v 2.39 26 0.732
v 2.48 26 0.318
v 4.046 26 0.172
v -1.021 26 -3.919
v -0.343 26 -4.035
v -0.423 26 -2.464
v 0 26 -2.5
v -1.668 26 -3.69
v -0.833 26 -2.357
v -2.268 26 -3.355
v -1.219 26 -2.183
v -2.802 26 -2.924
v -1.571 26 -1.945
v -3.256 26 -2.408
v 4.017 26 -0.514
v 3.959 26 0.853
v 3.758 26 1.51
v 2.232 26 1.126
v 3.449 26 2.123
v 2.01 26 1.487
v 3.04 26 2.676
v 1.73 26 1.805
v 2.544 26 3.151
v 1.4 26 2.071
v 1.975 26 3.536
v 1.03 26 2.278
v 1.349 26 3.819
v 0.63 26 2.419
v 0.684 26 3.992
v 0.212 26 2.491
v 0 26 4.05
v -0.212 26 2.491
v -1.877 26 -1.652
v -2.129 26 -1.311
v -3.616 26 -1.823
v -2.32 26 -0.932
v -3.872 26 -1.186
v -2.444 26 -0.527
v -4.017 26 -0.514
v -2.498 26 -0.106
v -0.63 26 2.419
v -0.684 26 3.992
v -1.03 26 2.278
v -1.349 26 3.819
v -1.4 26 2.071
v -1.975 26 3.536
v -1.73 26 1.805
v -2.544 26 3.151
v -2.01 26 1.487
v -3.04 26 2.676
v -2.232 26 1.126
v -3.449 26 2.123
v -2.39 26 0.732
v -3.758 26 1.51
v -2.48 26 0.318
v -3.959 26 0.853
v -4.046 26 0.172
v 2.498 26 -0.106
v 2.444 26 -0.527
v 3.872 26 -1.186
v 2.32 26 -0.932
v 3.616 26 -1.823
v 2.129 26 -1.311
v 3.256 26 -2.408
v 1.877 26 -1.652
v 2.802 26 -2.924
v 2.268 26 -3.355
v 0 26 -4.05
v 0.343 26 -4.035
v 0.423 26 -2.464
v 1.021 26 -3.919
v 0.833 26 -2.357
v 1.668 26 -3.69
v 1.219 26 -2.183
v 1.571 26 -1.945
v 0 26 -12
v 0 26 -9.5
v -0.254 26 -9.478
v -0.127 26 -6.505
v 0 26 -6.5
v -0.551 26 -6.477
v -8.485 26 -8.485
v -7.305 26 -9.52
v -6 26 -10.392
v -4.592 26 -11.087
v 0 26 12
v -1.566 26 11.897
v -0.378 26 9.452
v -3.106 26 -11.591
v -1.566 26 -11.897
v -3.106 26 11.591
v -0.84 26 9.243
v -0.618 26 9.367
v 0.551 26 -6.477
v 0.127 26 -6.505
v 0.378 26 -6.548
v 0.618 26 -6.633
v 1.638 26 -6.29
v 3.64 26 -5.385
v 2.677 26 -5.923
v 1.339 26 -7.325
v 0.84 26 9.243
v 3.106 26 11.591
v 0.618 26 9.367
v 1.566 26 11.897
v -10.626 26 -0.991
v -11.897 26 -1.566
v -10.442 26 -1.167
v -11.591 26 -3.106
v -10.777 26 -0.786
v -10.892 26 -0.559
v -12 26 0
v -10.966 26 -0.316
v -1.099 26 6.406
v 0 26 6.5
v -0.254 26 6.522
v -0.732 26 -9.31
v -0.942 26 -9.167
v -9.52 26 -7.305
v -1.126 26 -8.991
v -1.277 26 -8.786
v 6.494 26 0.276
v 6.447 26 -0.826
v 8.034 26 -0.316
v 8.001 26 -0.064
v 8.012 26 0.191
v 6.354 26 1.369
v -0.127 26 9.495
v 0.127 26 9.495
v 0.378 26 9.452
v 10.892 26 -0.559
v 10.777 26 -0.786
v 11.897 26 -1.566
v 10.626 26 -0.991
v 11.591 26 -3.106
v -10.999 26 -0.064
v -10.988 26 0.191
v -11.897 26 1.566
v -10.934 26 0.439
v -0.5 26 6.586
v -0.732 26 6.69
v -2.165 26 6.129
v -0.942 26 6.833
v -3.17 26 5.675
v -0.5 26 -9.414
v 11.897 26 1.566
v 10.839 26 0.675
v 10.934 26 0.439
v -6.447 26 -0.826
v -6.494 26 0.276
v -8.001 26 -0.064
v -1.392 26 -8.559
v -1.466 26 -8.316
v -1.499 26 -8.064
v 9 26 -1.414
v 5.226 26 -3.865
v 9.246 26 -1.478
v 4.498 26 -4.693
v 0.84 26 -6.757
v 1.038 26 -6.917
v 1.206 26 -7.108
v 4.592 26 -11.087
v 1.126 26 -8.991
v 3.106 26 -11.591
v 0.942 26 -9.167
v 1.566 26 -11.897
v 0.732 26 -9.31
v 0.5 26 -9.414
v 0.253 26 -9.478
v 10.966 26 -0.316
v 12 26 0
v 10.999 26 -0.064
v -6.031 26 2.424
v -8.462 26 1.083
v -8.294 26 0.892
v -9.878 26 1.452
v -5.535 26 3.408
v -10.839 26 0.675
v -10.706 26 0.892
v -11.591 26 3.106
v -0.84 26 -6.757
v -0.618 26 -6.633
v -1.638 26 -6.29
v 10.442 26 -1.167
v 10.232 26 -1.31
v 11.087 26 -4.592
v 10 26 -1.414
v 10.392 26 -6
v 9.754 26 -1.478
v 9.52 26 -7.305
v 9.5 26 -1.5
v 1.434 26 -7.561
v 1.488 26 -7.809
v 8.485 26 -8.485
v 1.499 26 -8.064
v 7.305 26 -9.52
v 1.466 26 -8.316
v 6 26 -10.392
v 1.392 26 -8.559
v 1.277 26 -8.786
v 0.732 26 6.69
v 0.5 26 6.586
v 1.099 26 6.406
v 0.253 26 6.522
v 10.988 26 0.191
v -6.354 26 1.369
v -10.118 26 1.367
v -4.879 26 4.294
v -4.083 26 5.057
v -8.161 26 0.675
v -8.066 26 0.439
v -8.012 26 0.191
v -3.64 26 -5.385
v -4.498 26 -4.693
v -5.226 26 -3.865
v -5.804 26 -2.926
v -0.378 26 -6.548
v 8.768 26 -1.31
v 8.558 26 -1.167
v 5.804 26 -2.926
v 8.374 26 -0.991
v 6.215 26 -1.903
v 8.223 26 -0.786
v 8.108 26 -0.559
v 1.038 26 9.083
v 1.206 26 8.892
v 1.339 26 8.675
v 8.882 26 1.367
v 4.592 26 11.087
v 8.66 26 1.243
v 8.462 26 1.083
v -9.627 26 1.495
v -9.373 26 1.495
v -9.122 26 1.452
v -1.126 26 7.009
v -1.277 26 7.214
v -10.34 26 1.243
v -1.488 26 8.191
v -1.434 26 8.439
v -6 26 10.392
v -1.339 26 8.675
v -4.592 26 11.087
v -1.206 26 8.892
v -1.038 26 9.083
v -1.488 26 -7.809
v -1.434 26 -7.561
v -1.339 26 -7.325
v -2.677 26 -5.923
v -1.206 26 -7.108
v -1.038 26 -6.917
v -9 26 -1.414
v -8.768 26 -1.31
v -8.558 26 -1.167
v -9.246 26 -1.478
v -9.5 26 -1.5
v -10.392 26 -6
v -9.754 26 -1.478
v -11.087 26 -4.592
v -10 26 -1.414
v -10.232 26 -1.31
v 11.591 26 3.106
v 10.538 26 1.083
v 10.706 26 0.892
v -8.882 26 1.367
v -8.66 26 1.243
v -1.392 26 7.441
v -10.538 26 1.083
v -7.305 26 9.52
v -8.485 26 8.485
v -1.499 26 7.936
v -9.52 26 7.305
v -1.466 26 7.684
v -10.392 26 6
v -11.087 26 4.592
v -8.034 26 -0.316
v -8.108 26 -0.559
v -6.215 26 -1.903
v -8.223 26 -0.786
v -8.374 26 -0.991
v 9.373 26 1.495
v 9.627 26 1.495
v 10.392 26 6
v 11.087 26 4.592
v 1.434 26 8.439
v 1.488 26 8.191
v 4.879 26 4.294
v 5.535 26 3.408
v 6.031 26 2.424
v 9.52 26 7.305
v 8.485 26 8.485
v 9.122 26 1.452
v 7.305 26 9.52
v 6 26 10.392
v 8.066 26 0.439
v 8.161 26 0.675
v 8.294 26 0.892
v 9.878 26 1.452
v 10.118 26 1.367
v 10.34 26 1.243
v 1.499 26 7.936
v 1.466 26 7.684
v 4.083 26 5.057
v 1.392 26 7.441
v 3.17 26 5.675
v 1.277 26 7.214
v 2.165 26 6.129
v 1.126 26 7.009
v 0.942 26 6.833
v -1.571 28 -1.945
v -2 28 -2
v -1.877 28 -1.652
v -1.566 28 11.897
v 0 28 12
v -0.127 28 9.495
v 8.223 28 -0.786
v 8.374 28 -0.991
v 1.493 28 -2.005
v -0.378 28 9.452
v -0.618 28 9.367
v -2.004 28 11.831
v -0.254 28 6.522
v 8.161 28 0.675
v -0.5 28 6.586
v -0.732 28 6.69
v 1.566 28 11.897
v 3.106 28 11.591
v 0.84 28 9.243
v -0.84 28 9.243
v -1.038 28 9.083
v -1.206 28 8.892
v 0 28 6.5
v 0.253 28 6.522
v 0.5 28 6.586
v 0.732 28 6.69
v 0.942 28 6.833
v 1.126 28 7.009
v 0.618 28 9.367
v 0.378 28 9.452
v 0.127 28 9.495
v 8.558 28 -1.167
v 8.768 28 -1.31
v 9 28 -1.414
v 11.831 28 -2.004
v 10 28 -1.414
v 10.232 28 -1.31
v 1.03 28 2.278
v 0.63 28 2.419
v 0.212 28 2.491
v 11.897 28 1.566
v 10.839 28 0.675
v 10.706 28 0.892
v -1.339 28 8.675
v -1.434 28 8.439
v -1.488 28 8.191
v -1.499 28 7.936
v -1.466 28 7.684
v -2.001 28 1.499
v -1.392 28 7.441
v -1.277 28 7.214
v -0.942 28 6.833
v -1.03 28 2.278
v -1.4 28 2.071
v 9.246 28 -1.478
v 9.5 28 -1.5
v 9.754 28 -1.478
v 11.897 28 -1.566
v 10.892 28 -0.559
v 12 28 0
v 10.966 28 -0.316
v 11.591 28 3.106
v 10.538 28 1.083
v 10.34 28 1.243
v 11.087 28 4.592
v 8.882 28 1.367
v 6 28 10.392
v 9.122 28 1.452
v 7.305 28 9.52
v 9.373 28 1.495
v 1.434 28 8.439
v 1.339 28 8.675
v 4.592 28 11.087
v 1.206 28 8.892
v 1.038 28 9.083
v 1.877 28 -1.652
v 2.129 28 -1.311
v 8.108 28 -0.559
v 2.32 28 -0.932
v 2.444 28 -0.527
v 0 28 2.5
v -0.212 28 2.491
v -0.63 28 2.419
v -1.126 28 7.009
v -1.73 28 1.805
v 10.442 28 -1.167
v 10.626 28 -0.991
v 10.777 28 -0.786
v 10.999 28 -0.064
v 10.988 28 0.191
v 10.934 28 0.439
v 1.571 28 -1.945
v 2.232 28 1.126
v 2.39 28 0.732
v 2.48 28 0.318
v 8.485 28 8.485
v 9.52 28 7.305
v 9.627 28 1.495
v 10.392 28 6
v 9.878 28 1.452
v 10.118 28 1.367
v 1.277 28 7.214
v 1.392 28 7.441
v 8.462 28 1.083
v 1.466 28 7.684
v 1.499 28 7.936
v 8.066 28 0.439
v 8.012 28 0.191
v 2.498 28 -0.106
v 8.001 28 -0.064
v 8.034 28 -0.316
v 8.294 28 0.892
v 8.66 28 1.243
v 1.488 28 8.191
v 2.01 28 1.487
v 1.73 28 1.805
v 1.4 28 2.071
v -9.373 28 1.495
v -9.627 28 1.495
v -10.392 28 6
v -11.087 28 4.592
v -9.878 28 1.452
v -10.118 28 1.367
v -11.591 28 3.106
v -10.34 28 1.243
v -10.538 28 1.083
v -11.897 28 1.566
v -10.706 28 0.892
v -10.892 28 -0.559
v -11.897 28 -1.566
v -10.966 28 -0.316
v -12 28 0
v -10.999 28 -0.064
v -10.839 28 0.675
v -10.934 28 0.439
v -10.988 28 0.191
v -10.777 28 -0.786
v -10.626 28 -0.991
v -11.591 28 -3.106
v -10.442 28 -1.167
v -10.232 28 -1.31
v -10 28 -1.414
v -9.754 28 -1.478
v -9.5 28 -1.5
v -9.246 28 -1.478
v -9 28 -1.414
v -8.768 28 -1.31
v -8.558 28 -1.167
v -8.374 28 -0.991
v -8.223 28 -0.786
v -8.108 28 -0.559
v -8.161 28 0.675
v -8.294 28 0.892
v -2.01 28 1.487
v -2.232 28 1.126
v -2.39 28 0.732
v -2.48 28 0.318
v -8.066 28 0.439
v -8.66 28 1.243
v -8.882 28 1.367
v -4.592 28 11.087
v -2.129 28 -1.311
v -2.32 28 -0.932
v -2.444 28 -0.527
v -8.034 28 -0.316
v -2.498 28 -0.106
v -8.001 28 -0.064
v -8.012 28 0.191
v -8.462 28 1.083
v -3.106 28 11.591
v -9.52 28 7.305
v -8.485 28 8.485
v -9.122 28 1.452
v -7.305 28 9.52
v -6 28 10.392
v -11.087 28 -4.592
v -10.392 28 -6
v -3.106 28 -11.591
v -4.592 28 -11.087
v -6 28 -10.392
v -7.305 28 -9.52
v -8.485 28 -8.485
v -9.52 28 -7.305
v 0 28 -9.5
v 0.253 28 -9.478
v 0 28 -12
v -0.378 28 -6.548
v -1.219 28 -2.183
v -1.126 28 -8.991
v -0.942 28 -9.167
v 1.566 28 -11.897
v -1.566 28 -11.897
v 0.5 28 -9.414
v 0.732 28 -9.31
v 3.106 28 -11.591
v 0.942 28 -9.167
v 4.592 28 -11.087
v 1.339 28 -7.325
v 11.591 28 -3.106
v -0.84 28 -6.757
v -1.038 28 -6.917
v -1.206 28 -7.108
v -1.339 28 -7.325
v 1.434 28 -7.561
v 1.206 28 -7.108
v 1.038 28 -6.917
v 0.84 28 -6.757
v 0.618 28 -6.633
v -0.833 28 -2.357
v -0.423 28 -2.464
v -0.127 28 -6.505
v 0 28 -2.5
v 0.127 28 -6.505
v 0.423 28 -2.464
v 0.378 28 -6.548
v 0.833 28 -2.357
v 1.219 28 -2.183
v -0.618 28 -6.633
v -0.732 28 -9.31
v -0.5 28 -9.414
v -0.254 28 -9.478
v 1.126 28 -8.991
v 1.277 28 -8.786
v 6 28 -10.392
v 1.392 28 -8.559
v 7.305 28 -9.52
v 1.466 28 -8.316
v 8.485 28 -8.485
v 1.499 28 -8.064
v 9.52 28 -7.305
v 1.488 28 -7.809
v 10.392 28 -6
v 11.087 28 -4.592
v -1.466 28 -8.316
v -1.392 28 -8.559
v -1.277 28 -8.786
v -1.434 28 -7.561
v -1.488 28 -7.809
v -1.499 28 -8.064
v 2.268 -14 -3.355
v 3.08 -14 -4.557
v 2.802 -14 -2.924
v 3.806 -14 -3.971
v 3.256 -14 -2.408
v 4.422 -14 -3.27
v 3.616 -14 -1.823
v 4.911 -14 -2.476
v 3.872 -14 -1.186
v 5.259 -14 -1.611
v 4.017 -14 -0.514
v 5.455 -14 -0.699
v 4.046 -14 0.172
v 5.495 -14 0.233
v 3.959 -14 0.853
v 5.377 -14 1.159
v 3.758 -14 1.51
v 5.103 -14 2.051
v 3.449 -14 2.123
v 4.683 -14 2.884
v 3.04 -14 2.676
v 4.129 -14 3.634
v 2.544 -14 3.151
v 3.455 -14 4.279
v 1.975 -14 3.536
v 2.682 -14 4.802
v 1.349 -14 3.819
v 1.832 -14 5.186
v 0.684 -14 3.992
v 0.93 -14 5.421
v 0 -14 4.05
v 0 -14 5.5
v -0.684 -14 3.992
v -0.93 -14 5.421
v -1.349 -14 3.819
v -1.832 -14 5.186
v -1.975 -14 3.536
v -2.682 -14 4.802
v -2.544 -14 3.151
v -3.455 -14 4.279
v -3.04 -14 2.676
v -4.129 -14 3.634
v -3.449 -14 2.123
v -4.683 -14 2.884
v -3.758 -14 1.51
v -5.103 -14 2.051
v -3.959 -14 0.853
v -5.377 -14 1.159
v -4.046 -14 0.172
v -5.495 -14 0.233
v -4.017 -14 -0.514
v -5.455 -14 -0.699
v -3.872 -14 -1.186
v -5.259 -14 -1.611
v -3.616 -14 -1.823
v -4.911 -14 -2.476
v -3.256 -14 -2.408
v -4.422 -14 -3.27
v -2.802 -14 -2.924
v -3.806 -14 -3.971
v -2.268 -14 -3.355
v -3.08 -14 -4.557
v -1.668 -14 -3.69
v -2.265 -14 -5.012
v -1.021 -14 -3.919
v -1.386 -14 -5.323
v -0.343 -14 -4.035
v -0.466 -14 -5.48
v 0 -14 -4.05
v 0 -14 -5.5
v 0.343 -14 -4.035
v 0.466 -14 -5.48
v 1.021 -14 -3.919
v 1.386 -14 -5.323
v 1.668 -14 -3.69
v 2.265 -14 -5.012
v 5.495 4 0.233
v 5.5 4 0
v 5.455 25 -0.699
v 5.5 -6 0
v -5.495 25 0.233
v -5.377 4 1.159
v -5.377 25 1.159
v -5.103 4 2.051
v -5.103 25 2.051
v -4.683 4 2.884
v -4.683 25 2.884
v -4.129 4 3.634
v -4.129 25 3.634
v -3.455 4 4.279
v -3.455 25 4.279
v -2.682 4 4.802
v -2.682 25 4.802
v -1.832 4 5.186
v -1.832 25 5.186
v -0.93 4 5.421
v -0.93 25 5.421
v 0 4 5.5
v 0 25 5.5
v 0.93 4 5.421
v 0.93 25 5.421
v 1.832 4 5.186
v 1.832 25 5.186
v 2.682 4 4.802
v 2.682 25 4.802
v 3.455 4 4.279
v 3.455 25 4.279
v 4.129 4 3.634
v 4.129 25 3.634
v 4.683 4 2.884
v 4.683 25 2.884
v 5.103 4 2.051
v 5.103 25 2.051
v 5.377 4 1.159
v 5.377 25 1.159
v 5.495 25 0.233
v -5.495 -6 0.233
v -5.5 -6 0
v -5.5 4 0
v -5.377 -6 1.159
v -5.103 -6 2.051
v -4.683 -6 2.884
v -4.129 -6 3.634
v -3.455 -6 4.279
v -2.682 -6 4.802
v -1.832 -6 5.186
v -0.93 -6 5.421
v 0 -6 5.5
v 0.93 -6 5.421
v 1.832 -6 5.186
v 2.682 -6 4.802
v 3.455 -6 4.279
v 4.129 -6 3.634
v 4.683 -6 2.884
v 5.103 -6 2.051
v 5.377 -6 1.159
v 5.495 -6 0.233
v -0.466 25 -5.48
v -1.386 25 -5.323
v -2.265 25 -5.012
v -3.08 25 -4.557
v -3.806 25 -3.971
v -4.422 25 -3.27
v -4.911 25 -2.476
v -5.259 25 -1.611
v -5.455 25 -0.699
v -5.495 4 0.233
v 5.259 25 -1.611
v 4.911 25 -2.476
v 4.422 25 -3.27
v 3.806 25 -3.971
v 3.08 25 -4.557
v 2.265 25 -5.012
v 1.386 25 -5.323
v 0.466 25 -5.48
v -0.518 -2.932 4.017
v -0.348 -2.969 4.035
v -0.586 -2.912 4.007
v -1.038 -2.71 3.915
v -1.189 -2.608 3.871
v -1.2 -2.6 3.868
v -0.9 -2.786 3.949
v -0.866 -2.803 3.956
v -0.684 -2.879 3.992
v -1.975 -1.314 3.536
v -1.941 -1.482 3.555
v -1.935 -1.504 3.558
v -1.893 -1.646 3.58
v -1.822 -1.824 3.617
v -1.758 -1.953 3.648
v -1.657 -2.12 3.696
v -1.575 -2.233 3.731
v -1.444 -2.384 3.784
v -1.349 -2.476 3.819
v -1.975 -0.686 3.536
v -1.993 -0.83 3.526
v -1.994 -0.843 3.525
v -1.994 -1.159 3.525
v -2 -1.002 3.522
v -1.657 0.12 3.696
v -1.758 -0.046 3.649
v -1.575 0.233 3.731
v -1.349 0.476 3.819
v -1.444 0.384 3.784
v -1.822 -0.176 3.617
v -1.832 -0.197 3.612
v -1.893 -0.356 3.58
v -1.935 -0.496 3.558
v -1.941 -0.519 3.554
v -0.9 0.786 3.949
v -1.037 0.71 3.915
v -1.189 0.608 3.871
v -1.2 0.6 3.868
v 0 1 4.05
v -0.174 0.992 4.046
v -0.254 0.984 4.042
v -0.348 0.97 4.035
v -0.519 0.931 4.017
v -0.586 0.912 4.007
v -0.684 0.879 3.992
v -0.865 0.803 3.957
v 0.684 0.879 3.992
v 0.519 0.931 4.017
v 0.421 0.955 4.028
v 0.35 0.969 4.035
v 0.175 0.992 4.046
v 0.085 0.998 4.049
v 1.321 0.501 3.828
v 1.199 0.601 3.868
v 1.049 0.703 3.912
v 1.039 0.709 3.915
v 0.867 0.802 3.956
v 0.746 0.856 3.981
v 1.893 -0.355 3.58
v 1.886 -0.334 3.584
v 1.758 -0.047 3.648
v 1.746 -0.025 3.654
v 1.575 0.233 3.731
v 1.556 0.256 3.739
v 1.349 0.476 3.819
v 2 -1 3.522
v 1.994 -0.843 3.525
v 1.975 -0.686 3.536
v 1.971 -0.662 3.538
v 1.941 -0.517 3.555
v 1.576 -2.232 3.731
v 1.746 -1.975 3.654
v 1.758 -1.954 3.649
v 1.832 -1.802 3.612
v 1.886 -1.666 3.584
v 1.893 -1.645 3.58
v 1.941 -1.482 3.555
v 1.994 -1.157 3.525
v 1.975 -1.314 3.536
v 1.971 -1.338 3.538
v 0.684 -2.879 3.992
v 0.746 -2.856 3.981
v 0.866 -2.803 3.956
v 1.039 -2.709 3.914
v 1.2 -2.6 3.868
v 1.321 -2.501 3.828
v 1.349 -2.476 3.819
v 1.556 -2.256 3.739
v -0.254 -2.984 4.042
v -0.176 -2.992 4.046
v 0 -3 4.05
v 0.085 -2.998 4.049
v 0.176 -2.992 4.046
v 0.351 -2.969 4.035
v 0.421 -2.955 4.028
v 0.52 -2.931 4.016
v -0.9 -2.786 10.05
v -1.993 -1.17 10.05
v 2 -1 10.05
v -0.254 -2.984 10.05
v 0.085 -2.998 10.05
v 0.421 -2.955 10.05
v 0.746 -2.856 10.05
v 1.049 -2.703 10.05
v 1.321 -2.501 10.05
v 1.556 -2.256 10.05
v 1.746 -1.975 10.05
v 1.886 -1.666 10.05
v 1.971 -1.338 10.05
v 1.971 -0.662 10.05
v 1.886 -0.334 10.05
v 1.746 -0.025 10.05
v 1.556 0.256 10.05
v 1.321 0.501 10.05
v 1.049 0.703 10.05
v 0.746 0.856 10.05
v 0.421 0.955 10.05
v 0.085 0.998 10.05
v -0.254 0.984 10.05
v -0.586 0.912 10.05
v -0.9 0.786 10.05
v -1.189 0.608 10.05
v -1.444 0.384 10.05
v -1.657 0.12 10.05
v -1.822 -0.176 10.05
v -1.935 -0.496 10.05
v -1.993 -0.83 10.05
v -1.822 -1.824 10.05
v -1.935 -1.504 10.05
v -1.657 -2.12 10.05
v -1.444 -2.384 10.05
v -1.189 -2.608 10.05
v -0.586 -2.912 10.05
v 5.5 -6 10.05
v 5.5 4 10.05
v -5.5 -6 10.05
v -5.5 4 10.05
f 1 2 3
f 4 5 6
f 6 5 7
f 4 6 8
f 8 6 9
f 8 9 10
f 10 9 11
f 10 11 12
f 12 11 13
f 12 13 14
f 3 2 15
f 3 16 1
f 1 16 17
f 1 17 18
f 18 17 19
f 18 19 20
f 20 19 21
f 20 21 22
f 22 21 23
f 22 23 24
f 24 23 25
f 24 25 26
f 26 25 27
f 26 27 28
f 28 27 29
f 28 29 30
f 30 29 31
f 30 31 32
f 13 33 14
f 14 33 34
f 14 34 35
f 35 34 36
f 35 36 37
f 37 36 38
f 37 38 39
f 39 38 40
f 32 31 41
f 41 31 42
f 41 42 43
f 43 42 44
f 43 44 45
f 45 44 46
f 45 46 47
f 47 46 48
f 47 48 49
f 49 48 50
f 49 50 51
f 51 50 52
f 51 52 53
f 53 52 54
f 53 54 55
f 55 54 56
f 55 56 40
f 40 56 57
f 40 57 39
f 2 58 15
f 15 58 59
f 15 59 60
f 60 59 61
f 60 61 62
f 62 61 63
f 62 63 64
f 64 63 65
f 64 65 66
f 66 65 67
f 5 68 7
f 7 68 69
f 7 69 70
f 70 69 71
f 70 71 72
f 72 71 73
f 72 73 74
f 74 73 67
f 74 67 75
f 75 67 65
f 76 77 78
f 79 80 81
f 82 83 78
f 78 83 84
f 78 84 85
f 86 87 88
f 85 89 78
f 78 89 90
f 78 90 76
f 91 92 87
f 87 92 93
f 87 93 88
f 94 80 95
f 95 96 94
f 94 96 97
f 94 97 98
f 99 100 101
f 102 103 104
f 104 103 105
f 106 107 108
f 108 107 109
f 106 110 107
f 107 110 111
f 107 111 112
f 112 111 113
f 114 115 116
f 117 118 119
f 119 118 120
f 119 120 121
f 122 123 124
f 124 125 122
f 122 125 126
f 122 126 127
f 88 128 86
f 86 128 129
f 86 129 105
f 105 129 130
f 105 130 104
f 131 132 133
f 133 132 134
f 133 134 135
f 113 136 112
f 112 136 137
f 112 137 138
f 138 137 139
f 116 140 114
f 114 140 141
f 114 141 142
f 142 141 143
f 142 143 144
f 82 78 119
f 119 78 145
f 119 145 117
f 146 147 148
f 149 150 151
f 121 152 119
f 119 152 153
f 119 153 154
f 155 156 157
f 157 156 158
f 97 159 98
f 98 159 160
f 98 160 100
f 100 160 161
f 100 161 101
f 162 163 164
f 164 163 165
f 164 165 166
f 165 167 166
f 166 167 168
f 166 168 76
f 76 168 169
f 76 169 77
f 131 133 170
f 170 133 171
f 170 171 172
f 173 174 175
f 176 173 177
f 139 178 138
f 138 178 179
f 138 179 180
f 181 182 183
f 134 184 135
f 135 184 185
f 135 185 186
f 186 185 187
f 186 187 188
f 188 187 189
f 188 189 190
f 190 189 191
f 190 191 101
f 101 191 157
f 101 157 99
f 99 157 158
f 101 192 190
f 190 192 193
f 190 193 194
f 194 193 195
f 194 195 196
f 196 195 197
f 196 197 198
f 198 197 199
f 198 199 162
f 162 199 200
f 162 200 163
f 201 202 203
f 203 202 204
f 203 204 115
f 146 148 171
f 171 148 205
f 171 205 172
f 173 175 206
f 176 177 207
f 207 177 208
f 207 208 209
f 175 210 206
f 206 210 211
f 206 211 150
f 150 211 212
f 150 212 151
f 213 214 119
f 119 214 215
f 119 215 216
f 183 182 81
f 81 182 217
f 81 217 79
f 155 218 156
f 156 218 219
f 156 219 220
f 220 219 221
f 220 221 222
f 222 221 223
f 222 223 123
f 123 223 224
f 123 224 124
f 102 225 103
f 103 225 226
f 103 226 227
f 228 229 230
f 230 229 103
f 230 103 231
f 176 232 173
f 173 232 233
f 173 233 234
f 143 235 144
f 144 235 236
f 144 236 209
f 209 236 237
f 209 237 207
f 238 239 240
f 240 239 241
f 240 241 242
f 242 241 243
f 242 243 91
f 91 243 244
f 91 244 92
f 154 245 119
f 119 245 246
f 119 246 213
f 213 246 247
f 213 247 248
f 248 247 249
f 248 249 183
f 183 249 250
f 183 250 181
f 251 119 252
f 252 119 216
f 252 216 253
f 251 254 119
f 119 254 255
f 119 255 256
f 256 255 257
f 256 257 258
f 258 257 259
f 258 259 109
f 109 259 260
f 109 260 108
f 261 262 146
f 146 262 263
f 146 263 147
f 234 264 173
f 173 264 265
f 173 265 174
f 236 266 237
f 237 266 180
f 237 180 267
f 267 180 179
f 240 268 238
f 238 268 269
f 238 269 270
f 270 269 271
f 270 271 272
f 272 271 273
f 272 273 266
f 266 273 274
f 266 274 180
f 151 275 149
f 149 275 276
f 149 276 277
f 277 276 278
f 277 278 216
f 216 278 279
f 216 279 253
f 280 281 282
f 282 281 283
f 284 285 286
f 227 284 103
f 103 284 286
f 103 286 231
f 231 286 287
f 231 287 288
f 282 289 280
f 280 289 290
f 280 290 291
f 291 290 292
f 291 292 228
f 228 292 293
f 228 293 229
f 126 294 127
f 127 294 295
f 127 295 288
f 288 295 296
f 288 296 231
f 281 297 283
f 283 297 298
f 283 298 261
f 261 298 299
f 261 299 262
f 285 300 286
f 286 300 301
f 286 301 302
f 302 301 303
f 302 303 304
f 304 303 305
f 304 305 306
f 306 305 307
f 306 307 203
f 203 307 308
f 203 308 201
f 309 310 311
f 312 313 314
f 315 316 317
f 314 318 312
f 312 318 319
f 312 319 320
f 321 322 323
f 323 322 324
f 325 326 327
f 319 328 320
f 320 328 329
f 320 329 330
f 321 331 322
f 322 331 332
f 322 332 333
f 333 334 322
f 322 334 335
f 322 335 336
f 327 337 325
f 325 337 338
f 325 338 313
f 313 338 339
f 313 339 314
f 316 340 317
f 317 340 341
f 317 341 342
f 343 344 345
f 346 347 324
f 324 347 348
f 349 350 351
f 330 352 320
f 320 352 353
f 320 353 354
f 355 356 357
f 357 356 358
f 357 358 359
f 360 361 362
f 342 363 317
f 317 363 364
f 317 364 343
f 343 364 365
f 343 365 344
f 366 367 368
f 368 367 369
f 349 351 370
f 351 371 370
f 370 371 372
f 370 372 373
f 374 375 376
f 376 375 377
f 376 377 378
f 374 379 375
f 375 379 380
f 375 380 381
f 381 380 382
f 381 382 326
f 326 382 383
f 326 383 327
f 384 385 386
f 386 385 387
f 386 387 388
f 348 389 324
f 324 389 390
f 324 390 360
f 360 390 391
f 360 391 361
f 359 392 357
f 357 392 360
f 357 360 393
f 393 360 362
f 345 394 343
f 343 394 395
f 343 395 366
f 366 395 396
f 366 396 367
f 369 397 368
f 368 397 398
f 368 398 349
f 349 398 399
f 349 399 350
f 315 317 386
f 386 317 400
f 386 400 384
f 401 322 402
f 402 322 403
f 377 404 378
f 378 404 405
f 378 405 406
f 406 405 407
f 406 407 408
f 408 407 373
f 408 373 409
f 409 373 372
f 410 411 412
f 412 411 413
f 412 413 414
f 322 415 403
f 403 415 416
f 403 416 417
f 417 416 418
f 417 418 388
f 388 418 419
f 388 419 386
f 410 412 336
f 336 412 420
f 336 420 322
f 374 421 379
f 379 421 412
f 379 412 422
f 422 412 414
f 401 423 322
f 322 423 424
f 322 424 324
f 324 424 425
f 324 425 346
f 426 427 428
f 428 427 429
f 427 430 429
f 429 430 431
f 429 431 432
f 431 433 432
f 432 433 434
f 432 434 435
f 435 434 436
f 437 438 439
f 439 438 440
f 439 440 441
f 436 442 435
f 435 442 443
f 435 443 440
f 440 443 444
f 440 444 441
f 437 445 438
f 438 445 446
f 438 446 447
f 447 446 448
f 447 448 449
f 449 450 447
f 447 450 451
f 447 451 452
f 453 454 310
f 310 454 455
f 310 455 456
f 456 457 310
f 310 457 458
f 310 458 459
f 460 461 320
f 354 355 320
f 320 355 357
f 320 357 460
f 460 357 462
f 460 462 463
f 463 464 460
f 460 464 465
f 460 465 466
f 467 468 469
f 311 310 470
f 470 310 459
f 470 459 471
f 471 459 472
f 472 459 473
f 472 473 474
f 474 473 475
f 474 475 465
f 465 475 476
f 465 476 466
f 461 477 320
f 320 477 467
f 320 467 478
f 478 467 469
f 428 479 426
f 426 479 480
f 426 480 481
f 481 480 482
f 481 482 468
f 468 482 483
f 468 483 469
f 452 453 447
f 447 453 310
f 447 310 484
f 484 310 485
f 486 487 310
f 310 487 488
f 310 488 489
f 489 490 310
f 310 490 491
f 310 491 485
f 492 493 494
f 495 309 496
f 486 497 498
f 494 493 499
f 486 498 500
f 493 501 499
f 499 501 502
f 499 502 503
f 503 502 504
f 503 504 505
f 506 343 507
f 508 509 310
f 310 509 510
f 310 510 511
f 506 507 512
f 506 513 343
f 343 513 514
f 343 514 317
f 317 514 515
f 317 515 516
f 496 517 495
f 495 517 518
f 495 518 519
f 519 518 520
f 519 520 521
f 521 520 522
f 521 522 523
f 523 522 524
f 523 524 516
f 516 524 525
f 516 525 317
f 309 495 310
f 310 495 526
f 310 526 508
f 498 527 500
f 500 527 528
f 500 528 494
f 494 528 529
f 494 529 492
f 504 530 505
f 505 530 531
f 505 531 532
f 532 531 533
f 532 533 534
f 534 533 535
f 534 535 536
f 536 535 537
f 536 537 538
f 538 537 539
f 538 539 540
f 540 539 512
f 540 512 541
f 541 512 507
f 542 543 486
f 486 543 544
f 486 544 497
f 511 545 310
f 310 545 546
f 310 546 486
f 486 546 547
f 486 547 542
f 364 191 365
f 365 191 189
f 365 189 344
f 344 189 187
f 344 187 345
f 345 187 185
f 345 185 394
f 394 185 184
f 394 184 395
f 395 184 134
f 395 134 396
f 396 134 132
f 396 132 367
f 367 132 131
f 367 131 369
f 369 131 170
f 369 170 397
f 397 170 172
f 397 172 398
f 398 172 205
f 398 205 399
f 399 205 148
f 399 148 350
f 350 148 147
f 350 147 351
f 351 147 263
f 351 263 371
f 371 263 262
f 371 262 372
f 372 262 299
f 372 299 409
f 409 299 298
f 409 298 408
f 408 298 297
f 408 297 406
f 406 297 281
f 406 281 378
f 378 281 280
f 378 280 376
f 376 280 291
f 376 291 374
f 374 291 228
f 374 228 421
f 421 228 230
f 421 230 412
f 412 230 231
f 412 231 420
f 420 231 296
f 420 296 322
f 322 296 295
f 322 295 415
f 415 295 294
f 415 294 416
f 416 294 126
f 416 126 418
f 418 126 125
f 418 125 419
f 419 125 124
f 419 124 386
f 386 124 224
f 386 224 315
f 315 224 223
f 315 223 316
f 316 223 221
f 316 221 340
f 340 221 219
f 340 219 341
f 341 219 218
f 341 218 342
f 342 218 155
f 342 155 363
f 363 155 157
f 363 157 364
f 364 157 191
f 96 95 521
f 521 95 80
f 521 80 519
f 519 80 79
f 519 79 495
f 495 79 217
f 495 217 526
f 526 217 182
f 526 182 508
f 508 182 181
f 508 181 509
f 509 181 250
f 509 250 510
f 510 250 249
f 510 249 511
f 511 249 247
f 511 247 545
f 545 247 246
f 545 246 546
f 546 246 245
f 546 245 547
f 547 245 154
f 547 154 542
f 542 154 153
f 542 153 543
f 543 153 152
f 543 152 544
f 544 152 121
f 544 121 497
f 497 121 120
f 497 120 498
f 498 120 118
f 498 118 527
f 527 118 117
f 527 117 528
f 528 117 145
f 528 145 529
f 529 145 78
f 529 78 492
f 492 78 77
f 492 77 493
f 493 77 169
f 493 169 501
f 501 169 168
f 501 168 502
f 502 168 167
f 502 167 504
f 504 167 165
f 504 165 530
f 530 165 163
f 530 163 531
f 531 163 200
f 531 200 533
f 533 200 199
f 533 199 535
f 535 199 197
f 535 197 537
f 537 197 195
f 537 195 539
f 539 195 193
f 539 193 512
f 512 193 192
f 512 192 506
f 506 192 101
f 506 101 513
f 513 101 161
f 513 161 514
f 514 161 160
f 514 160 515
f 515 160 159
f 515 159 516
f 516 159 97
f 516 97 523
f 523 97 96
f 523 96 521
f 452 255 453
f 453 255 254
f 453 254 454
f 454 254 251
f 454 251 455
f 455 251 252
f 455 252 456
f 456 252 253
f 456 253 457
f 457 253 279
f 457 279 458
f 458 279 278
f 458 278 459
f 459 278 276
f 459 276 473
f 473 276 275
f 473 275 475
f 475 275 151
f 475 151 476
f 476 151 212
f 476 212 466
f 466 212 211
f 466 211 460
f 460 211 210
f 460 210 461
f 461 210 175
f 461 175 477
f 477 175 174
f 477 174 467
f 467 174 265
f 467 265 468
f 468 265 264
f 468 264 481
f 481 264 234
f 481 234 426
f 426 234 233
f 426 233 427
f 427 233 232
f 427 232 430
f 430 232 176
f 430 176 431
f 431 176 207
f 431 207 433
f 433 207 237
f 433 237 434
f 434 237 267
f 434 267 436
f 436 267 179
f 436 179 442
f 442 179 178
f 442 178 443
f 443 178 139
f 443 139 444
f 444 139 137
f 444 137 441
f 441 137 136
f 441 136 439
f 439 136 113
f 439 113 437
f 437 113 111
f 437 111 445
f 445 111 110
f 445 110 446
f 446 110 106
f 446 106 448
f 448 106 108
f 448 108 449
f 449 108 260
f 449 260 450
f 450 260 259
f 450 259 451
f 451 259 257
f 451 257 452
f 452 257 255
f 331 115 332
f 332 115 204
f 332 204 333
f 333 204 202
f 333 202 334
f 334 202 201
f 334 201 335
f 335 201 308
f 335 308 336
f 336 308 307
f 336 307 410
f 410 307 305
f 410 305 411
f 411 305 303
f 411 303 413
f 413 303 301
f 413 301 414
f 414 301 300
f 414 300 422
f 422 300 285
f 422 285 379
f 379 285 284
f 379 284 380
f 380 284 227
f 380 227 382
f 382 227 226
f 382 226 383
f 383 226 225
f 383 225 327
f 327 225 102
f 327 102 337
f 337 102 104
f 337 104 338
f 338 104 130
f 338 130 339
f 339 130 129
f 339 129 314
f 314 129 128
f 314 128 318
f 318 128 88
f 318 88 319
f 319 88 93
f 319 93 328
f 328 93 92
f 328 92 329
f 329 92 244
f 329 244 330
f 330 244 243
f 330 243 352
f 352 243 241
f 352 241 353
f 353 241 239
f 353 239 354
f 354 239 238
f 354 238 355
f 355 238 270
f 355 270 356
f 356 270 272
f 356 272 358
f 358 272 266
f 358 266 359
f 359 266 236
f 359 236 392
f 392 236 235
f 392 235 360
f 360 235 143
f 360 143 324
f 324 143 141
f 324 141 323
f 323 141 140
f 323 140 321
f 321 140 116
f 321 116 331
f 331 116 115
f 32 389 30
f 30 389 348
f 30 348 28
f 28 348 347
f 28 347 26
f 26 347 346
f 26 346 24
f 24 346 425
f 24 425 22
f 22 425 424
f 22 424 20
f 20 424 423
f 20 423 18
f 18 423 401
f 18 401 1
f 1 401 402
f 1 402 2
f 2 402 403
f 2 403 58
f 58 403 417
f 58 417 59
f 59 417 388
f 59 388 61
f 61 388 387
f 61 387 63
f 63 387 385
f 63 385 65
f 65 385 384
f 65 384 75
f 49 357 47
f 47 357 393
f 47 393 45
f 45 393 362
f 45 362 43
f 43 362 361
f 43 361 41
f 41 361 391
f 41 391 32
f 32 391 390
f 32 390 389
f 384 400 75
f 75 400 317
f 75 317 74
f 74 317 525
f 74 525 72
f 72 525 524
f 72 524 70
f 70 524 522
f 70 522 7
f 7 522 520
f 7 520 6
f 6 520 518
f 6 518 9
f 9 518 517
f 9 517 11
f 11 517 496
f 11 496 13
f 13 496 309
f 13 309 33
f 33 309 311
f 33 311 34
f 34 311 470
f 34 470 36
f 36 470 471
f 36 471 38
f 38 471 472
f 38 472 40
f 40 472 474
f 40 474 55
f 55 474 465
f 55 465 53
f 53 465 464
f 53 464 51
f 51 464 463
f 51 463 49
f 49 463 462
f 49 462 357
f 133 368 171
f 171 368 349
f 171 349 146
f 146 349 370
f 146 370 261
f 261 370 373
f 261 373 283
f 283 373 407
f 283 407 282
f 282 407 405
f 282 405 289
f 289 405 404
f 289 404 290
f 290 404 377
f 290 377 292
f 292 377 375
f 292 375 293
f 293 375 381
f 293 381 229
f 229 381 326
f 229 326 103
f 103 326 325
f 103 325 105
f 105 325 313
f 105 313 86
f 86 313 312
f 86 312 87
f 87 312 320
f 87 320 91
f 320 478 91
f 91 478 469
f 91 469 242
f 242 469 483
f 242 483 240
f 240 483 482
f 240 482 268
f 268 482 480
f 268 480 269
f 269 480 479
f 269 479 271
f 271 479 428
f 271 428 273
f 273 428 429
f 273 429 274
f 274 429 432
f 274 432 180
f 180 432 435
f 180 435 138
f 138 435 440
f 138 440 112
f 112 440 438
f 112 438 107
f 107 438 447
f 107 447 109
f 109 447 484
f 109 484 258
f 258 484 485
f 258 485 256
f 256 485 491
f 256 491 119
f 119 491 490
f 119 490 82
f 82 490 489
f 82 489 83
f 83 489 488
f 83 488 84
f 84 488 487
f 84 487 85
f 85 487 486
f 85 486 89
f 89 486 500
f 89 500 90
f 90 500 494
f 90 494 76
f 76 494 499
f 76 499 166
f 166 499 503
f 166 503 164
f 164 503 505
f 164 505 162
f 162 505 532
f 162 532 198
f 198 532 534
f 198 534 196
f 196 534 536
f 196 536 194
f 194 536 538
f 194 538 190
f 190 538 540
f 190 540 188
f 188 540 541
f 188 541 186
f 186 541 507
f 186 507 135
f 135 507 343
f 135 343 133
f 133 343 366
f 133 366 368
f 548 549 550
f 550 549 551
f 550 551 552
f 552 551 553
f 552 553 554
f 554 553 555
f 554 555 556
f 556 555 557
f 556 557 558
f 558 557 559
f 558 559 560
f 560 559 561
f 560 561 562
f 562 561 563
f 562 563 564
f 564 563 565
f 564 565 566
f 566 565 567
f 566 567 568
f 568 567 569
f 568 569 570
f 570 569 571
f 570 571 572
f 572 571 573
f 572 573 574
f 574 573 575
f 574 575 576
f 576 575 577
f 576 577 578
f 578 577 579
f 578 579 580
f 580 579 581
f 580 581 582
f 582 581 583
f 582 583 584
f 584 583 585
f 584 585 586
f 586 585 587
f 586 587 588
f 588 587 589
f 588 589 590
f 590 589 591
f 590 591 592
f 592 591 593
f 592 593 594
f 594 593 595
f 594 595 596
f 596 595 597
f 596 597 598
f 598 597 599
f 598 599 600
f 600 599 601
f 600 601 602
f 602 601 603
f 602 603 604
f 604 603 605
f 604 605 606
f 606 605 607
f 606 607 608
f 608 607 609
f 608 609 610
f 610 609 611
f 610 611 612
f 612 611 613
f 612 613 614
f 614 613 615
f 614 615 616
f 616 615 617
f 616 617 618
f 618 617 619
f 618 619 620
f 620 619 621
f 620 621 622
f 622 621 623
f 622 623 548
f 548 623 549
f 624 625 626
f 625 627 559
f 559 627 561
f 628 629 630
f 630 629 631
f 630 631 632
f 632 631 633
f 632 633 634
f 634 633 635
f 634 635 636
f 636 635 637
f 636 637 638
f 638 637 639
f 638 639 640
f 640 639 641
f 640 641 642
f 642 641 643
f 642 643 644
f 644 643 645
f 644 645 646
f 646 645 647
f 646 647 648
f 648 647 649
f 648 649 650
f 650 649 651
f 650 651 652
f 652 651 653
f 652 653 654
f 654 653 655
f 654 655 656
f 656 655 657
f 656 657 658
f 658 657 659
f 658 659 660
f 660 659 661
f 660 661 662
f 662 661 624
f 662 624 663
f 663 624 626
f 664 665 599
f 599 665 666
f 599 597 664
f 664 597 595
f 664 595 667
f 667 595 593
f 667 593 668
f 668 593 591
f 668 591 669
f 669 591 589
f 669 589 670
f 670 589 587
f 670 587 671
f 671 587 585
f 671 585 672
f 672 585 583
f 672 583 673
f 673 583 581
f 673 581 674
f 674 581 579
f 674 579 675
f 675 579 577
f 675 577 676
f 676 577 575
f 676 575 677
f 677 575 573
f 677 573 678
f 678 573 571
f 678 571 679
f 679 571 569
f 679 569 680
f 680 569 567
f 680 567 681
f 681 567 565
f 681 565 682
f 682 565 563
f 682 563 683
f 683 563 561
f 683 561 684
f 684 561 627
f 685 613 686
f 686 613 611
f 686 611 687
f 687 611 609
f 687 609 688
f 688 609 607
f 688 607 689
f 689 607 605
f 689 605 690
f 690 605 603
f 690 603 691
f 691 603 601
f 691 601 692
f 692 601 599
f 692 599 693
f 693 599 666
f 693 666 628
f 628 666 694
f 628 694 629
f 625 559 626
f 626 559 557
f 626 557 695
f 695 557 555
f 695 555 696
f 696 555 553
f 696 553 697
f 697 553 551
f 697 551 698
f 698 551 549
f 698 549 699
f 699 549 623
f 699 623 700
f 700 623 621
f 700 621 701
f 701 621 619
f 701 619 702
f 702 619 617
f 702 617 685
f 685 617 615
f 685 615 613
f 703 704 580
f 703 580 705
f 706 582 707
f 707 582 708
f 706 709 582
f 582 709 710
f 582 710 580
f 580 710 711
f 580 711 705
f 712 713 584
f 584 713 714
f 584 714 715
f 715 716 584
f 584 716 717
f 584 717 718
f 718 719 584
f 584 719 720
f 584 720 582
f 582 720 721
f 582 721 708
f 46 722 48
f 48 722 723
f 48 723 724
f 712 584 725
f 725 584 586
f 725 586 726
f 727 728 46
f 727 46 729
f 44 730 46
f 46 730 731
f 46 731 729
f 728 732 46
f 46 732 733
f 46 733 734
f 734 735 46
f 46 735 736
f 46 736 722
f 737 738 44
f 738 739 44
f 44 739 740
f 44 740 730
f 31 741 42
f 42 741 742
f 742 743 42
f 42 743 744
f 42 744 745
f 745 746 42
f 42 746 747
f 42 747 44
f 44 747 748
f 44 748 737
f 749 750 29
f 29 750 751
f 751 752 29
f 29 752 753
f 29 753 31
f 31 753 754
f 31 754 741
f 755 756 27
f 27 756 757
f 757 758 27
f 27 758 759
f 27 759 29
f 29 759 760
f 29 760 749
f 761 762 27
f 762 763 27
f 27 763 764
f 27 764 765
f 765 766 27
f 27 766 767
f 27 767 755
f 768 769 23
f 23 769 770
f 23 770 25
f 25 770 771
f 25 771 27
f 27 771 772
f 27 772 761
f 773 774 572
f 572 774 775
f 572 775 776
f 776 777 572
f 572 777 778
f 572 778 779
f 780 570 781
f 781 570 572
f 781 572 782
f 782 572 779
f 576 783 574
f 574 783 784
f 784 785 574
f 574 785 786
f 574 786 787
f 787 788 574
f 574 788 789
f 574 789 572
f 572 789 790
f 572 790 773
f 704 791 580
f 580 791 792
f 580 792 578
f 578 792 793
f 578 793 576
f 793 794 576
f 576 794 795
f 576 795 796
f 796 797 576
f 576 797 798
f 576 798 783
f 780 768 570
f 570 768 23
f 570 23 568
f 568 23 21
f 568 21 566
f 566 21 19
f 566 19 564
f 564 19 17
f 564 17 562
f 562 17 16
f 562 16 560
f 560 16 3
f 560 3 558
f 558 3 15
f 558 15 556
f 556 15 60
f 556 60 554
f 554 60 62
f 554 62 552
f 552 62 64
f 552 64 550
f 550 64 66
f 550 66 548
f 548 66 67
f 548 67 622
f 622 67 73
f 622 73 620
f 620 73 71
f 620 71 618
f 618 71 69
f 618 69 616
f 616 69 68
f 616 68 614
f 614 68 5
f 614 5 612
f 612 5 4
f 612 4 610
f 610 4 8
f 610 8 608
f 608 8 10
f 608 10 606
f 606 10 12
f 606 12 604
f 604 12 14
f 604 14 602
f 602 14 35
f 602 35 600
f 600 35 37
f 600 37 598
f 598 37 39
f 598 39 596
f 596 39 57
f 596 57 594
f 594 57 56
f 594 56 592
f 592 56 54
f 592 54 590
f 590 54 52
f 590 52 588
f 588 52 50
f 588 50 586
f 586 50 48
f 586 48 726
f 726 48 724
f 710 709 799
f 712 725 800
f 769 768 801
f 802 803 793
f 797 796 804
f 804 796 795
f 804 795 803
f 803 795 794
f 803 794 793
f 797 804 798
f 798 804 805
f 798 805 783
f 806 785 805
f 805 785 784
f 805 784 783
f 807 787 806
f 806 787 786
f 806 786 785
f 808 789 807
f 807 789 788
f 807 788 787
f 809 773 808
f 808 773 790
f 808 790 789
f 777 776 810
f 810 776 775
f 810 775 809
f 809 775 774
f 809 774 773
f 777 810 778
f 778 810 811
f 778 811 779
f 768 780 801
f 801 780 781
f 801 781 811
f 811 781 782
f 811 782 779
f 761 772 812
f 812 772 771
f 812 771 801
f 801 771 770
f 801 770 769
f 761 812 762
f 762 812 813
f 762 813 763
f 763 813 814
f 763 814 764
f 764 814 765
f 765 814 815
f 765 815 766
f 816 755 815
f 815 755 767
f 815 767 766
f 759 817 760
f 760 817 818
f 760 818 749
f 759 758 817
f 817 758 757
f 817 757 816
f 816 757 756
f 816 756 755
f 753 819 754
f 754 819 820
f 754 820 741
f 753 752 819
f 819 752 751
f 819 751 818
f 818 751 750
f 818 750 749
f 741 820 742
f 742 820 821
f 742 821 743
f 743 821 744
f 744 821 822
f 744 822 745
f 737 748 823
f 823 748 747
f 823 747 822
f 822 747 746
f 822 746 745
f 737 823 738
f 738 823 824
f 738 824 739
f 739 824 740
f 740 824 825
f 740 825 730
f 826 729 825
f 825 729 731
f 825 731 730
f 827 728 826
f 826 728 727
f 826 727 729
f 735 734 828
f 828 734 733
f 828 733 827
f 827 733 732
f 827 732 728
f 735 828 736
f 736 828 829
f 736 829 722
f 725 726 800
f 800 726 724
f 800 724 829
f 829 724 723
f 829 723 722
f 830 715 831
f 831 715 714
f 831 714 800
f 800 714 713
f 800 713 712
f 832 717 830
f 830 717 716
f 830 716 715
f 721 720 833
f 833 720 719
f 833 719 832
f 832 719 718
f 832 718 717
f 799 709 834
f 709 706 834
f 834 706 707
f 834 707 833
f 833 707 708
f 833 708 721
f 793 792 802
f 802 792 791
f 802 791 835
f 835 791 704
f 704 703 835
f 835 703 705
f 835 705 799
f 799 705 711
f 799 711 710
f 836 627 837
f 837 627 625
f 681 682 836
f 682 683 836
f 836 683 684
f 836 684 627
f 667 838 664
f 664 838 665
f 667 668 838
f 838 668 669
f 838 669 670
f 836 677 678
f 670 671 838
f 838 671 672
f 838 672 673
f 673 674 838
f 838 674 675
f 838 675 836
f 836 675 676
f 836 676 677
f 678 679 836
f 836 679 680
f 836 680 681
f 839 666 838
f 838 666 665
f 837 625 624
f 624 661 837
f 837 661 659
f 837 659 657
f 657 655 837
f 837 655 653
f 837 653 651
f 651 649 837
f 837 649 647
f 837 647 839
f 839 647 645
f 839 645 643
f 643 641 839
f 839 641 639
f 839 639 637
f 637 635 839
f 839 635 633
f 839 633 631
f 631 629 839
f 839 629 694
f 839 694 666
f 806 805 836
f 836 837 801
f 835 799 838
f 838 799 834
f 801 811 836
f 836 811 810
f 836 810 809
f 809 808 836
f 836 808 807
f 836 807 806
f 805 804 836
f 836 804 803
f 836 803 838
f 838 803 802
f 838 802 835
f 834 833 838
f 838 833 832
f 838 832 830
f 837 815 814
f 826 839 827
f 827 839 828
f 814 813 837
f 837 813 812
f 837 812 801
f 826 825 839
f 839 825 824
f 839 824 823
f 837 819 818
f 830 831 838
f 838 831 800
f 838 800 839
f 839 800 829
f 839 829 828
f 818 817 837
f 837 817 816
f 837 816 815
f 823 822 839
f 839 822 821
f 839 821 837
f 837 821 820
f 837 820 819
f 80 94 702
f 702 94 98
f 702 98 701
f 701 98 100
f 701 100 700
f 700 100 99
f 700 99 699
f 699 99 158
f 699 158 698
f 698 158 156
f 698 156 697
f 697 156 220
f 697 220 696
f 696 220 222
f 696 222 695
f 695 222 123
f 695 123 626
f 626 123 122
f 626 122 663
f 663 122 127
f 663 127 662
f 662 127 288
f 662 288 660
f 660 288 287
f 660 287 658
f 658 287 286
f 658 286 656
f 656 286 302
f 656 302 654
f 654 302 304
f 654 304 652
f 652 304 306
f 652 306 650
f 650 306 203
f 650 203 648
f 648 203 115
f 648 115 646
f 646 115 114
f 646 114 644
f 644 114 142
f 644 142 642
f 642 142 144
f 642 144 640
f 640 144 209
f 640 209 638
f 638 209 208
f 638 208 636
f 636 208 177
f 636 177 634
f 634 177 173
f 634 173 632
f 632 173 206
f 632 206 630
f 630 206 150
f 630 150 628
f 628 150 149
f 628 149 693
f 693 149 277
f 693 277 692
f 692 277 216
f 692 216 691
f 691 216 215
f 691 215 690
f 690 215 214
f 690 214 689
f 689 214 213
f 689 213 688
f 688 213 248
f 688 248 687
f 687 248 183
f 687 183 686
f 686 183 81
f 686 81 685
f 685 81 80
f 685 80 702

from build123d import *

# Parameters (mm, degrees)
SKETCH1_R                = 16
SKETCH1_R_2              = 14
BOSS_EXTRUDE1_DEPTH      = 26
SKETCH2_R                = 16
BOSS_EXTRUDE2_DEPTH      = 2
SKETCH3_R                = 1.5
CUT_EXTRUDE1_DEPTH       = 2
CUT_EXTRUDE2_DEPTH       = 26
SKETCH5_R                = 2.5
CUT_EXTRUDE3_DEPTH       = 10
SKETCH9_R                = 22.610796359
SKETCH9_R_2              = 12
CUT_EXTRUDE4_DEPTH       = 44
SKETCH10_R               = 5.5
SKETCH10_R_2             = 4.05
BOSS_EXTRUDE3_DEPTH      = 40
BOSS_EXTRUDE4_DEPTH      = 6
BOSS_EXTRUDE4_DEPTH_BACK = 4.05
SKETCH13_W               = 11
SKETCH13_H               = 10
SKETCH13_R               = 2
CUT_EXTRUDE5_START       = -33
SKETCH14_R               = 4.05
CUT_EXTRUDE5_DEPTH       = 33
CUT_EXTRUDE6_START       = -10
SKETCH15_R               = 2
CUT_EXTRUDE6_DEPTH       = 10
CHAMFER3_SIZE            = 1


with BuildPart() as part:
    # Sketch1 → Boss-Extrude1 (new body)
    with BuildSketch(Plane(origin=(0, 0, 0), x_dir=(1, 0, 0), z_dir=(0, 1, 0))):
        with Locations(Location((0, 0, 0), (0, 0, 90))):
            Circle(SKETCH1_R)
        with Locations(Location((0, 0, 0), (0, 0, 90))):
            Circle(SKETCH1_R_2, mode=Mode.SUBTRACT)
    extrude(amount=BOSS_EXTRUDE1_DEPTH)

    # Sketch2 → Boss-Extrude2 (add)
    with BuildSketch(Plane(origin=(0, 26, 0), x_dir=(1, 0, 0), z_dir=(0, 1, 0))):
        with Locations(Location((0, 0, 0), (0, 0, 90))):
            Circle(SKETCH2_R)
    extrude(amount=BOSS_EXTRUDE2_DEPTH)

    # Sketch3 → Cut-Extrude1 (cut)
    with BuildSketch(Plane.XZ.offset(-26)):
        with Locations(Location((0, 8, 0), (0, 0, 270))):
            Circle(SKETCH3_R)
        with Locations(Location((9.5, 0, 0), (0, 0, 270))):
            Circle(SKETCH3_R)
        with Locations(Location((-9.5, 0, 0), (0, 0, 270))):
            Circle(SKETCH3_R)
        with Locations(Location((0, -8, 0), (0, 0, 270))):
            Circle(SKETCH3_R)
    extrude(amount=-CUT_EXTRUDE1_DEPTH, mode=Mode.SUBTRACT)

    # Sketch4 → Cut-Extrude2 (cut)
    with BuildSketch(Plane.XZ):
        Polygon((-0.813172798, -5.550788232), (5.550788232, 0.813172798), (16.15738995, -9.793428919), (9.793428919, -16.15738995), align=None)
    extrude(amount=-CUT_EXTRUDE2_DEPTH, mode=Mode.SUBTRACT)

    # Sketch5 → Cut-Extrude3 (cut)
    with BuildSketch(Plane.XZ.offset(-26)):
        with Locations(Location((0, 0, 0), (0, 0, 270))):
            Circle(SKETCH5_R)
    extrude(amount=-CUT_EXTRUDE3_DEPTH, mode=Mode.SUBTRACT)

    # Sketch9 → Cut-Extrude4 (cut)
    with BuildSketch(Plane.XZ):
        Circle(SKETCH9_R)
        with Locations(Location((0, 0, 0), (0, 0, 90))):
            Circle(SKETCH9_R_2, mode=Mode.SUBTRACT)
    extrude(amount=-CUT_EXTRUDE4_DEPTH, mode=Mode.SUBTRACT)

    # Sketch10 → Boss-Extrude3 (add)
    with BuildSketch(Plane.XZ.offset(-26)):
        with Locations(Location((0, 0, 0), (0, 0, 90))):
            Circle(SKETCH10_R)
        with Locations(Location((0, 0, 0), (0, 0, 270))):
            Circle(SKETCH10_R_2, mode=Mode.SUBTRACT)
    extrude(amount=BOSS_EXTRUDE3_DEPTH)

    # Sketch13 → Boss-Extrude4 (add, two sides: drawn at the far end of the back side and taken through both)
    with BuildSketch(Plane.XY.offset(4.05).offset(-BOSS_EXTRUDE4_DEPTH_BACK)):
        with Locations((0, -1)):
            Rectangle(SKETCH13_W, SKETCH13_H)
        with Locations((0, -1)):
            Circle(SKETCH13_R, mode=Mode.SUBTRACT)
    extrude(amount=BOSS_EXTRUDE4_DEPTH + BOSS_EXTRUDE4_DEPTH_BACK)

    # Sketch14 → Cut-Extrude5 (cut)
    with BuildSketch(Plane.XZ.offset(14).offset(CUT_EXTRUDE5_START)):
        with Locations(Location((0, 0, 0), (0, 0, 270))):
            Circle(SKETCH14_R)
    extrude(amount=CUT_EXTRUDE5_DEPTH, mode=Mode.SUBTRACT)

    # Sketch15 → Cut-Extrude6 (cut)
    with BuildSketch(Plane.XY.offset(10.05).offset(CUT_EXTRUDE6_START)):
        with Locations((0, -1)):
            Circle(SKETCH15_R)
    extrude(amount=CUT_EXTRUDE6_DEPTH, mode=Mode.SUBTRACT)

    # Chamfer3
    chamfer3_edges = [part.edges().sort_by_distance(p)[0] for p in [
        (0, 26, -5.5),
    ]]
    chamfer(chamfer3_edges, length=CHAMFER3_SIZE - 0.0001)  # a hair under: the kernel refuses the full size


solid = part.part
